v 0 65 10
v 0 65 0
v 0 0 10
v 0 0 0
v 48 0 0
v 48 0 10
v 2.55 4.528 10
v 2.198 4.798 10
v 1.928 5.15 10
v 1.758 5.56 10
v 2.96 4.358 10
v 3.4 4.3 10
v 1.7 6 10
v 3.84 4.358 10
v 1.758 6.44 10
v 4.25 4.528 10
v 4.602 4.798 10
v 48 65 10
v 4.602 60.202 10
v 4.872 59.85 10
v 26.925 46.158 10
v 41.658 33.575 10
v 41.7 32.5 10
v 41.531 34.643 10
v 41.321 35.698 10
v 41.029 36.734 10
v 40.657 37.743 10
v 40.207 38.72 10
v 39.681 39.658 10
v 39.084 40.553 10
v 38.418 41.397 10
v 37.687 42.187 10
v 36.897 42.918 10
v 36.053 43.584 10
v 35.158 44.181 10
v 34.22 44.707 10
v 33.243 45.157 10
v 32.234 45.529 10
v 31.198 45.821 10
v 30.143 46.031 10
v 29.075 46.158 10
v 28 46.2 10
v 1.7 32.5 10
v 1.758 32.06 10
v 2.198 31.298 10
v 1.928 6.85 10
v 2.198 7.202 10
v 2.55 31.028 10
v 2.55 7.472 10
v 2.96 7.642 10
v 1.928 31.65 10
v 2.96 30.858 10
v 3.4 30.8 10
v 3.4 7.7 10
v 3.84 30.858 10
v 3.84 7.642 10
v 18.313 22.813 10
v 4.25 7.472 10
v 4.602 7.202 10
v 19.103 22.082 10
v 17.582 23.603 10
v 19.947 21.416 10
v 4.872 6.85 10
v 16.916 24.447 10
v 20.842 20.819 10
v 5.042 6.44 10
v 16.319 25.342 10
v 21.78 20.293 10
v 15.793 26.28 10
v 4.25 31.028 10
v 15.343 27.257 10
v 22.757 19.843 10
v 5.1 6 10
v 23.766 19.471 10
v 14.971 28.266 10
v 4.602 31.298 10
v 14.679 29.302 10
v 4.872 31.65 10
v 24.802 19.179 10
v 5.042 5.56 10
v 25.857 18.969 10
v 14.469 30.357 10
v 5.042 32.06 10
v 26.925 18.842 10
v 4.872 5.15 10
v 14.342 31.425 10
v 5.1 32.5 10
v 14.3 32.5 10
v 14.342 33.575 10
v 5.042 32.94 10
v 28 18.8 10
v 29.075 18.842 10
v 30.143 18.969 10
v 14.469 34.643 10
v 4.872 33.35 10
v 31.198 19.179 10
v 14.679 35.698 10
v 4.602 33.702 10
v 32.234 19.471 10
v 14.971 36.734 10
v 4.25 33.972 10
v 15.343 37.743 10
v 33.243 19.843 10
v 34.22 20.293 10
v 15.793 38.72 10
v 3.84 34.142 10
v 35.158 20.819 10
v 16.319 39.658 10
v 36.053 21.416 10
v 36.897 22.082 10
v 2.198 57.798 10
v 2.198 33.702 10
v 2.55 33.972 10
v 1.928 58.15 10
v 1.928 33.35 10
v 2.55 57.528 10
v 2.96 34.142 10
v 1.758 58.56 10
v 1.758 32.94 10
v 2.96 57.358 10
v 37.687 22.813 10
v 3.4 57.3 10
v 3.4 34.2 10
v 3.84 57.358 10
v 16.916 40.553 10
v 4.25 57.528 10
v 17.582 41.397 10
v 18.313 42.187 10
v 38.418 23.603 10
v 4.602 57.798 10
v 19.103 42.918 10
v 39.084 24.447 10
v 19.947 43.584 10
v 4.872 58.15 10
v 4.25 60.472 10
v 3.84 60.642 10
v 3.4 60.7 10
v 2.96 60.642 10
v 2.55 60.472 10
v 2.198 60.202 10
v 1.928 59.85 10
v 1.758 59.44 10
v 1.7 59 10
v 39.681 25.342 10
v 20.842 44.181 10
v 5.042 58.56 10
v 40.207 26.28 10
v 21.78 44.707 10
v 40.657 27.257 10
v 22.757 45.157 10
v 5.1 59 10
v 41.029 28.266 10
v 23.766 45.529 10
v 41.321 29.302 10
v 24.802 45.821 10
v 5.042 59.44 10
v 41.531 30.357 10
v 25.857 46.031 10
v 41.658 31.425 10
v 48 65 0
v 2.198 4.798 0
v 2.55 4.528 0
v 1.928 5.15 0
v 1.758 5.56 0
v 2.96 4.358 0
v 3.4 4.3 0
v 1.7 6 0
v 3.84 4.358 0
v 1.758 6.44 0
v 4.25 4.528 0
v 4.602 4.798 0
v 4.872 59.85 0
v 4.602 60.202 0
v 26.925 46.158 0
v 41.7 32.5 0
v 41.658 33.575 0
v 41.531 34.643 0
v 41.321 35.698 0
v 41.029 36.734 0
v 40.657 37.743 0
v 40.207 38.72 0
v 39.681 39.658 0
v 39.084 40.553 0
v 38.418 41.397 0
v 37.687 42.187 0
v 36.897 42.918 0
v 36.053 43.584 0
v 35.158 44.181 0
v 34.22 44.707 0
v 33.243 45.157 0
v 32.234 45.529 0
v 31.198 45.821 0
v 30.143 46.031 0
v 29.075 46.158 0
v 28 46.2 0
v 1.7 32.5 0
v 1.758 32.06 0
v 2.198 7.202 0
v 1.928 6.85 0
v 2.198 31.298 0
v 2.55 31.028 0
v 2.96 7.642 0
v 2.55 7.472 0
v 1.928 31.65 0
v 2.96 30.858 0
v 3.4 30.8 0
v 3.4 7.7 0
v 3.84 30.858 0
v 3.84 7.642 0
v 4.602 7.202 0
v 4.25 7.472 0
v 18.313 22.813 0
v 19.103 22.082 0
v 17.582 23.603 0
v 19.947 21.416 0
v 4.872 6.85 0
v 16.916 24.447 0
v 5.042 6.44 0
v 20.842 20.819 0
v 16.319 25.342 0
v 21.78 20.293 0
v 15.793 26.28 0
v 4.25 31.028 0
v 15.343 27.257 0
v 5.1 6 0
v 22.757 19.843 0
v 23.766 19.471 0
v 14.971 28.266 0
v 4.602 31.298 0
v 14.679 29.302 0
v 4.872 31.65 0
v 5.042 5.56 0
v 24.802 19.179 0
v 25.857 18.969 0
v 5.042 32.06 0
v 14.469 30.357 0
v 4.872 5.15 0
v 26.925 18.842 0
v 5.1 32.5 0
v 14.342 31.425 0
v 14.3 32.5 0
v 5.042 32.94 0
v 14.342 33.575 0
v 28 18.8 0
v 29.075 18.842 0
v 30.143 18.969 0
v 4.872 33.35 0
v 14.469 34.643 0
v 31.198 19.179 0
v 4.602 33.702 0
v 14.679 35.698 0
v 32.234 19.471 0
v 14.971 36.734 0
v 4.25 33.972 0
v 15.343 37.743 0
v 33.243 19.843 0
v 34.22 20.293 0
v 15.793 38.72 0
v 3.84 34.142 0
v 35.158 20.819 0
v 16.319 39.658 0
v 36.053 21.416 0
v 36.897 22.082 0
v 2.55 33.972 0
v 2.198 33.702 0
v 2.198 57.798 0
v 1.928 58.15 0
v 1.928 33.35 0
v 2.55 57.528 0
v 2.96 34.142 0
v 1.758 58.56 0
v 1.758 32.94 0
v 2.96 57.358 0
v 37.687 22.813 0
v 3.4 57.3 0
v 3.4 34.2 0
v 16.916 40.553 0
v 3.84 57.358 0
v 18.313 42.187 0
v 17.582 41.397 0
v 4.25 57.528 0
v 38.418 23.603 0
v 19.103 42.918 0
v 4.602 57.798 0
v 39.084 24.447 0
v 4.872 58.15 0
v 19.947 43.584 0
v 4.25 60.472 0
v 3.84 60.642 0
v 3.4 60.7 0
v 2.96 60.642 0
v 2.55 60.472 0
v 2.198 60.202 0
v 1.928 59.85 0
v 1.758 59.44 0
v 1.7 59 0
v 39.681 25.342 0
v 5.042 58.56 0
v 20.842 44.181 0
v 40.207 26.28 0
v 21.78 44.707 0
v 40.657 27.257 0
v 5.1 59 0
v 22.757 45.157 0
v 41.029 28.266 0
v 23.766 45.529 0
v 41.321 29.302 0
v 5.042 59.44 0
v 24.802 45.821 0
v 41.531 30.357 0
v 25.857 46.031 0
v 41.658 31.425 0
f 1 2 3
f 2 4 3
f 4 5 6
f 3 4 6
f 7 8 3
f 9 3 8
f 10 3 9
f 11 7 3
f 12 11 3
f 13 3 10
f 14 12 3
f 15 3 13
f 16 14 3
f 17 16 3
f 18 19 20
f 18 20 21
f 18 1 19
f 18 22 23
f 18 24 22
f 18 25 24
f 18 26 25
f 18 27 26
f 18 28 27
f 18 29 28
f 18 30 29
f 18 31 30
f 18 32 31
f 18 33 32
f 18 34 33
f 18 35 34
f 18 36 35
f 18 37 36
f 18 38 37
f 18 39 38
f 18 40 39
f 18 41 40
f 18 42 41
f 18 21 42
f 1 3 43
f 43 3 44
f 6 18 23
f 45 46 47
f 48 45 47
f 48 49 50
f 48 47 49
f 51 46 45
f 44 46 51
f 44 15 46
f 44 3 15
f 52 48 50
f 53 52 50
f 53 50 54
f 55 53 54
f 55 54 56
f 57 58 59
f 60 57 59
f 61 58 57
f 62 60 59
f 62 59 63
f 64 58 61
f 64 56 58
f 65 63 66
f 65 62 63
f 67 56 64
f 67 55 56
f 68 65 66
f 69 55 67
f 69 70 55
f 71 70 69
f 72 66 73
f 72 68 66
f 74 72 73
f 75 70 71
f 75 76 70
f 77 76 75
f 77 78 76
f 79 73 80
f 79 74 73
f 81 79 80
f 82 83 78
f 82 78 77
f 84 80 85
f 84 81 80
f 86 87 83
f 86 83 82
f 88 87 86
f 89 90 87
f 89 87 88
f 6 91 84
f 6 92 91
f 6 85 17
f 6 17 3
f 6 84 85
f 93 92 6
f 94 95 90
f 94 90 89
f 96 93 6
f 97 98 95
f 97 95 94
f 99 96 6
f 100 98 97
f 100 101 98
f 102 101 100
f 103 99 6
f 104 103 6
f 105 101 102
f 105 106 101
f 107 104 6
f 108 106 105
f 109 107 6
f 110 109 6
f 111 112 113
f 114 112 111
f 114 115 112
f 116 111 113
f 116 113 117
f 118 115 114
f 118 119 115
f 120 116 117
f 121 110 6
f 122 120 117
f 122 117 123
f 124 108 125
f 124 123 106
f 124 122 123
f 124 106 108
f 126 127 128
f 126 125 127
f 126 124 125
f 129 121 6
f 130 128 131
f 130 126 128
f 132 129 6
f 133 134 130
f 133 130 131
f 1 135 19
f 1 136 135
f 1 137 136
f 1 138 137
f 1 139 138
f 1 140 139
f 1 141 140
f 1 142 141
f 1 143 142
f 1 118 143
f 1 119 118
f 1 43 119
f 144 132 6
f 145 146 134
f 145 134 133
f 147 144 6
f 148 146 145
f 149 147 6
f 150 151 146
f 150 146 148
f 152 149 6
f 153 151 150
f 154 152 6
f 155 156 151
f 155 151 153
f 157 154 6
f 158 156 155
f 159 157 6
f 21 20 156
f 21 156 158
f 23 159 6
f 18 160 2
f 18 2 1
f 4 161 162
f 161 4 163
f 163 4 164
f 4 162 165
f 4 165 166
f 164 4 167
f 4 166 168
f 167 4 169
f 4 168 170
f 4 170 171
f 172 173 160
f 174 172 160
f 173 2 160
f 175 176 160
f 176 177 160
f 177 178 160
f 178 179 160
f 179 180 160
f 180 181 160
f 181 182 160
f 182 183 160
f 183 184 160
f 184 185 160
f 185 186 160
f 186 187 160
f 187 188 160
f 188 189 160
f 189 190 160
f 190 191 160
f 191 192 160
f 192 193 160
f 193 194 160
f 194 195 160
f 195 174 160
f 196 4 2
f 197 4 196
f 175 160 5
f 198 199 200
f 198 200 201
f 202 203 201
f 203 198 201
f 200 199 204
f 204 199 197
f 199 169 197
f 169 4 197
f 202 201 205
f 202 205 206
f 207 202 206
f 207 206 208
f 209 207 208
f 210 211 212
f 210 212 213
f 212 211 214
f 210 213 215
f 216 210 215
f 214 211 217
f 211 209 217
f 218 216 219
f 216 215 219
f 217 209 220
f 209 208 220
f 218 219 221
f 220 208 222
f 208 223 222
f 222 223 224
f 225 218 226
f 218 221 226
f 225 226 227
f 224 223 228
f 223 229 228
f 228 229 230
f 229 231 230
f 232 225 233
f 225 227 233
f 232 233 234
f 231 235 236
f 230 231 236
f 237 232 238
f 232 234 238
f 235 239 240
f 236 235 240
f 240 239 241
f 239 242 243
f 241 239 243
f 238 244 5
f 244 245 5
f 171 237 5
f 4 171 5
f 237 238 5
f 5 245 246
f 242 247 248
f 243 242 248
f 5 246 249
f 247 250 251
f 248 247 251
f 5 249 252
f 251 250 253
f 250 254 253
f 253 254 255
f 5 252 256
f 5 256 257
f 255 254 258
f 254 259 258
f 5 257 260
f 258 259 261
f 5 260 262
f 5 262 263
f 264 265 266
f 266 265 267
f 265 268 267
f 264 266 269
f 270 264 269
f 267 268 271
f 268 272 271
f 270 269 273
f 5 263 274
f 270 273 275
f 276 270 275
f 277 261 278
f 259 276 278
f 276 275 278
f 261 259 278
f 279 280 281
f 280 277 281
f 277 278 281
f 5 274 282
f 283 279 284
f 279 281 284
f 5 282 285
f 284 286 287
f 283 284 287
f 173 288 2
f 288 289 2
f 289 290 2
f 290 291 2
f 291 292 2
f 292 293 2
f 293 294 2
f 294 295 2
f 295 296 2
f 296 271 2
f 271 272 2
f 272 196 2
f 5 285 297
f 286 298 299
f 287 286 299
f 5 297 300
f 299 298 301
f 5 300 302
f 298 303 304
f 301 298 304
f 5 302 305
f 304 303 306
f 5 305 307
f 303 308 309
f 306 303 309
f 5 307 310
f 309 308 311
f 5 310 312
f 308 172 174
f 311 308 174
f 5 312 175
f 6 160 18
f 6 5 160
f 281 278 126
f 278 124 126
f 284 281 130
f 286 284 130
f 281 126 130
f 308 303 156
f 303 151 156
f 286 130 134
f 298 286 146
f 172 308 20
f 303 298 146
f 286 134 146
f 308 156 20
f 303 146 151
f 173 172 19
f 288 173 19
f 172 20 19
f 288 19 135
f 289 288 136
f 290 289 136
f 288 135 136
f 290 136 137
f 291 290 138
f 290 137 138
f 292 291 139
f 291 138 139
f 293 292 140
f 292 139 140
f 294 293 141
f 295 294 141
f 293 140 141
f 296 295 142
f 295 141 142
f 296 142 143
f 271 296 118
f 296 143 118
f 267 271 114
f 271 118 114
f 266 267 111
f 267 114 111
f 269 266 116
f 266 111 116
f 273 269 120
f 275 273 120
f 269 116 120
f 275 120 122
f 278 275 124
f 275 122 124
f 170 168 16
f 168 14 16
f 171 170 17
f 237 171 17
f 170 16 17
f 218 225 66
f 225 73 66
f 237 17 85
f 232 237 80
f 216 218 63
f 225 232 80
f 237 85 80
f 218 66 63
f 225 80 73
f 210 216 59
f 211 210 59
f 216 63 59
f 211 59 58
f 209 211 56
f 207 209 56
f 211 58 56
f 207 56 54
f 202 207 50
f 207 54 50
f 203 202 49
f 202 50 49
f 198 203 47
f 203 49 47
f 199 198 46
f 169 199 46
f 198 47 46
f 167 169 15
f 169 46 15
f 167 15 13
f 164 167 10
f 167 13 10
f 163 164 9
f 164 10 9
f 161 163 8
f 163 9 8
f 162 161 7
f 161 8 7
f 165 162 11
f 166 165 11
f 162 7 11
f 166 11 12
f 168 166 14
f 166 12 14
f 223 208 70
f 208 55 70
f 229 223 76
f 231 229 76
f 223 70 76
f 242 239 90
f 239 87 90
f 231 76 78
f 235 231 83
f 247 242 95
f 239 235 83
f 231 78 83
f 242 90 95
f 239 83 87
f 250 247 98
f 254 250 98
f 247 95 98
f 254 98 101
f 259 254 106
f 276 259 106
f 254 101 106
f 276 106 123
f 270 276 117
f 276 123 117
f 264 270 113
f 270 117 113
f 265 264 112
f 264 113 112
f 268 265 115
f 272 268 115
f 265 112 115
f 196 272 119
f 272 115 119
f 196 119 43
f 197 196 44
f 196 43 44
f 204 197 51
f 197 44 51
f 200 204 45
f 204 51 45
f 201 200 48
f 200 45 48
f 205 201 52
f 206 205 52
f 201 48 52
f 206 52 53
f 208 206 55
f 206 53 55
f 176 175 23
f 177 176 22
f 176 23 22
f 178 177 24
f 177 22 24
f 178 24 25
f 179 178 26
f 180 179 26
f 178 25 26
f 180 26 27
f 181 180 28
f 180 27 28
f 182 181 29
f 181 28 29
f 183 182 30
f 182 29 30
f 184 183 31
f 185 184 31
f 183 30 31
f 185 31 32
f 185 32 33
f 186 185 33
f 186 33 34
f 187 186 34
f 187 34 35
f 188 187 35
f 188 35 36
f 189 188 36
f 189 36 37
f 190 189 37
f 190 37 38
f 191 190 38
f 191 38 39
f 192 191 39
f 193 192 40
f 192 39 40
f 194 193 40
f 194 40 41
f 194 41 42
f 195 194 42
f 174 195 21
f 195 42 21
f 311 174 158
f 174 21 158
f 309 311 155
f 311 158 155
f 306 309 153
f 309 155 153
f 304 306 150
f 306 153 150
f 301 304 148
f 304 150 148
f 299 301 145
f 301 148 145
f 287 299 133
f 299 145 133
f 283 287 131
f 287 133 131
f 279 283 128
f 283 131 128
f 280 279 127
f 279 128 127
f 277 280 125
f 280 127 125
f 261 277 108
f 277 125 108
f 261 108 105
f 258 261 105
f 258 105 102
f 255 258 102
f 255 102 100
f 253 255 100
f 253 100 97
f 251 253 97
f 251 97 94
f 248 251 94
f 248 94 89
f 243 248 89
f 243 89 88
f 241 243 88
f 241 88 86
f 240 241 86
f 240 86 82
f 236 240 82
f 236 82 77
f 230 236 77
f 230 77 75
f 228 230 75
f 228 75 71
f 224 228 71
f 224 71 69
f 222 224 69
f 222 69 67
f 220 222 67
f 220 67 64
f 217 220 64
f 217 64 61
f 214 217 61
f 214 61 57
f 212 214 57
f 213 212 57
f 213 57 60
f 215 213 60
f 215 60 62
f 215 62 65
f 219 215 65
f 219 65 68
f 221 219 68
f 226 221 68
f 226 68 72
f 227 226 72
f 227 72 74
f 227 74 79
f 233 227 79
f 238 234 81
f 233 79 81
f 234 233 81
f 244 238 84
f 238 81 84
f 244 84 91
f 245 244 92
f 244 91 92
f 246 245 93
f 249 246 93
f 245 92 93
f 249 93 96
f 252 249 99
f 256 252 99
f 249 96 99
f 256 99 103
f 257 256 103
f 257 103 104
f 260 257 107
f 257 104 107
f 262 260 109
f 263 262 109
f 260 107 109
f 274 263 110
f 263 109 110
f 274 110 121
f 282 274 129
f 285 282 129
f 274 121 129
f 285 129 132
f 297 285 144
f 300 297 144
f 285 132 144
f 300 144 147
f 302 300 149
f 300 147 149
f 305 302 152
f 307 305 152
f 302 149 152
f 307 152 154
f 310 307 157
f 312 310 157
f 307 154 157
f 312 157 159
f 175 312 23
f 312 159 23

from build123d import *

# Parameters (mm, degrees)
CYLINDER003_R     = 1.7
CYLINDER003_DEPTH = 20
CYLINDER005_R     = 1.7
CYLINDER005_DEPTH = 20
CYLINDER002_R     = 1.7
CYLINDER002_DEPTH = 20
CYLINDER_R        = 13.7
CYLINDER_DEPTH    = 50
BOX_W             = 48
BOX_H             = 65
BOX_DEPTH         = 10


with BuildPart() as cylinder003:
    # Cylinder003 → Cylinder003 (new body)
    with BuildSketch(Plane(origin=(3.4, 59, -5), x_dir=(1, 0, 0), z_dir=(0, 0, 1))):
        Circle(CYLINDER003_R)
    extrude(amount=CYLINDER003_DEPTH)


with BuildPart() as cylinder005:
    # Cylinder005 → Cylinder005 (new body)
    with BuildSketch(Plane(origin=(3.4, 6, -5), x_dir=(1, 0, 0), z_dir=(0, 0, 1))):
        Circle(CYLINDER005_R)
    extrude(amount=CYLINDER005_DEPTH)


with BuildPart() as cylinder002:
    # Cylinder002 → Cylinder002 (new body)
    with BuildSketch(Plane(origin=(3.4, 32.5, -5), x_dir=(1, 0, 0), z_dir=(0, 0, 1))):
        Circle(CYLINDER002_R)
    extrude(amount=CYLINDER002_DEPTH)


with BuildPart() as cylinder:
    # Cylinder → Cylinder (new body)
    with BuildSketch(Plane(origin=(28, 32.5, -5), x_dir=(1, 0, 0), z_dir=(0, 0, 1))):
        Circle(CYLINDER_R)
    extrude(amount=CYLINDER_DEPTH)


with BuildPart() as cut003:
    # Box → Box (new body)
    with BuildSketch(Plane.XY):
        with Locations((24, 32.5)):
            Rectangle(BOX_W, BOX_H)
    extrude(amount=BOX_DEPTH)

    # Cut: cut Cylinder
    add(cylinder.part, mode=Mode.SUBTRACT)

    # Cut001: cut Cylinder002
    add(cylinder002.part, mode=Mode.SUBTRACT)

    # Cut002: cut Cylinder005
    add(cylinder005.part, mode=Mode.SUBTRACT)

    # Cut003: cut Cylinder003
    add(cylinder003.part, mode=Mode.SUBTRACT)


solid = cut003.part
